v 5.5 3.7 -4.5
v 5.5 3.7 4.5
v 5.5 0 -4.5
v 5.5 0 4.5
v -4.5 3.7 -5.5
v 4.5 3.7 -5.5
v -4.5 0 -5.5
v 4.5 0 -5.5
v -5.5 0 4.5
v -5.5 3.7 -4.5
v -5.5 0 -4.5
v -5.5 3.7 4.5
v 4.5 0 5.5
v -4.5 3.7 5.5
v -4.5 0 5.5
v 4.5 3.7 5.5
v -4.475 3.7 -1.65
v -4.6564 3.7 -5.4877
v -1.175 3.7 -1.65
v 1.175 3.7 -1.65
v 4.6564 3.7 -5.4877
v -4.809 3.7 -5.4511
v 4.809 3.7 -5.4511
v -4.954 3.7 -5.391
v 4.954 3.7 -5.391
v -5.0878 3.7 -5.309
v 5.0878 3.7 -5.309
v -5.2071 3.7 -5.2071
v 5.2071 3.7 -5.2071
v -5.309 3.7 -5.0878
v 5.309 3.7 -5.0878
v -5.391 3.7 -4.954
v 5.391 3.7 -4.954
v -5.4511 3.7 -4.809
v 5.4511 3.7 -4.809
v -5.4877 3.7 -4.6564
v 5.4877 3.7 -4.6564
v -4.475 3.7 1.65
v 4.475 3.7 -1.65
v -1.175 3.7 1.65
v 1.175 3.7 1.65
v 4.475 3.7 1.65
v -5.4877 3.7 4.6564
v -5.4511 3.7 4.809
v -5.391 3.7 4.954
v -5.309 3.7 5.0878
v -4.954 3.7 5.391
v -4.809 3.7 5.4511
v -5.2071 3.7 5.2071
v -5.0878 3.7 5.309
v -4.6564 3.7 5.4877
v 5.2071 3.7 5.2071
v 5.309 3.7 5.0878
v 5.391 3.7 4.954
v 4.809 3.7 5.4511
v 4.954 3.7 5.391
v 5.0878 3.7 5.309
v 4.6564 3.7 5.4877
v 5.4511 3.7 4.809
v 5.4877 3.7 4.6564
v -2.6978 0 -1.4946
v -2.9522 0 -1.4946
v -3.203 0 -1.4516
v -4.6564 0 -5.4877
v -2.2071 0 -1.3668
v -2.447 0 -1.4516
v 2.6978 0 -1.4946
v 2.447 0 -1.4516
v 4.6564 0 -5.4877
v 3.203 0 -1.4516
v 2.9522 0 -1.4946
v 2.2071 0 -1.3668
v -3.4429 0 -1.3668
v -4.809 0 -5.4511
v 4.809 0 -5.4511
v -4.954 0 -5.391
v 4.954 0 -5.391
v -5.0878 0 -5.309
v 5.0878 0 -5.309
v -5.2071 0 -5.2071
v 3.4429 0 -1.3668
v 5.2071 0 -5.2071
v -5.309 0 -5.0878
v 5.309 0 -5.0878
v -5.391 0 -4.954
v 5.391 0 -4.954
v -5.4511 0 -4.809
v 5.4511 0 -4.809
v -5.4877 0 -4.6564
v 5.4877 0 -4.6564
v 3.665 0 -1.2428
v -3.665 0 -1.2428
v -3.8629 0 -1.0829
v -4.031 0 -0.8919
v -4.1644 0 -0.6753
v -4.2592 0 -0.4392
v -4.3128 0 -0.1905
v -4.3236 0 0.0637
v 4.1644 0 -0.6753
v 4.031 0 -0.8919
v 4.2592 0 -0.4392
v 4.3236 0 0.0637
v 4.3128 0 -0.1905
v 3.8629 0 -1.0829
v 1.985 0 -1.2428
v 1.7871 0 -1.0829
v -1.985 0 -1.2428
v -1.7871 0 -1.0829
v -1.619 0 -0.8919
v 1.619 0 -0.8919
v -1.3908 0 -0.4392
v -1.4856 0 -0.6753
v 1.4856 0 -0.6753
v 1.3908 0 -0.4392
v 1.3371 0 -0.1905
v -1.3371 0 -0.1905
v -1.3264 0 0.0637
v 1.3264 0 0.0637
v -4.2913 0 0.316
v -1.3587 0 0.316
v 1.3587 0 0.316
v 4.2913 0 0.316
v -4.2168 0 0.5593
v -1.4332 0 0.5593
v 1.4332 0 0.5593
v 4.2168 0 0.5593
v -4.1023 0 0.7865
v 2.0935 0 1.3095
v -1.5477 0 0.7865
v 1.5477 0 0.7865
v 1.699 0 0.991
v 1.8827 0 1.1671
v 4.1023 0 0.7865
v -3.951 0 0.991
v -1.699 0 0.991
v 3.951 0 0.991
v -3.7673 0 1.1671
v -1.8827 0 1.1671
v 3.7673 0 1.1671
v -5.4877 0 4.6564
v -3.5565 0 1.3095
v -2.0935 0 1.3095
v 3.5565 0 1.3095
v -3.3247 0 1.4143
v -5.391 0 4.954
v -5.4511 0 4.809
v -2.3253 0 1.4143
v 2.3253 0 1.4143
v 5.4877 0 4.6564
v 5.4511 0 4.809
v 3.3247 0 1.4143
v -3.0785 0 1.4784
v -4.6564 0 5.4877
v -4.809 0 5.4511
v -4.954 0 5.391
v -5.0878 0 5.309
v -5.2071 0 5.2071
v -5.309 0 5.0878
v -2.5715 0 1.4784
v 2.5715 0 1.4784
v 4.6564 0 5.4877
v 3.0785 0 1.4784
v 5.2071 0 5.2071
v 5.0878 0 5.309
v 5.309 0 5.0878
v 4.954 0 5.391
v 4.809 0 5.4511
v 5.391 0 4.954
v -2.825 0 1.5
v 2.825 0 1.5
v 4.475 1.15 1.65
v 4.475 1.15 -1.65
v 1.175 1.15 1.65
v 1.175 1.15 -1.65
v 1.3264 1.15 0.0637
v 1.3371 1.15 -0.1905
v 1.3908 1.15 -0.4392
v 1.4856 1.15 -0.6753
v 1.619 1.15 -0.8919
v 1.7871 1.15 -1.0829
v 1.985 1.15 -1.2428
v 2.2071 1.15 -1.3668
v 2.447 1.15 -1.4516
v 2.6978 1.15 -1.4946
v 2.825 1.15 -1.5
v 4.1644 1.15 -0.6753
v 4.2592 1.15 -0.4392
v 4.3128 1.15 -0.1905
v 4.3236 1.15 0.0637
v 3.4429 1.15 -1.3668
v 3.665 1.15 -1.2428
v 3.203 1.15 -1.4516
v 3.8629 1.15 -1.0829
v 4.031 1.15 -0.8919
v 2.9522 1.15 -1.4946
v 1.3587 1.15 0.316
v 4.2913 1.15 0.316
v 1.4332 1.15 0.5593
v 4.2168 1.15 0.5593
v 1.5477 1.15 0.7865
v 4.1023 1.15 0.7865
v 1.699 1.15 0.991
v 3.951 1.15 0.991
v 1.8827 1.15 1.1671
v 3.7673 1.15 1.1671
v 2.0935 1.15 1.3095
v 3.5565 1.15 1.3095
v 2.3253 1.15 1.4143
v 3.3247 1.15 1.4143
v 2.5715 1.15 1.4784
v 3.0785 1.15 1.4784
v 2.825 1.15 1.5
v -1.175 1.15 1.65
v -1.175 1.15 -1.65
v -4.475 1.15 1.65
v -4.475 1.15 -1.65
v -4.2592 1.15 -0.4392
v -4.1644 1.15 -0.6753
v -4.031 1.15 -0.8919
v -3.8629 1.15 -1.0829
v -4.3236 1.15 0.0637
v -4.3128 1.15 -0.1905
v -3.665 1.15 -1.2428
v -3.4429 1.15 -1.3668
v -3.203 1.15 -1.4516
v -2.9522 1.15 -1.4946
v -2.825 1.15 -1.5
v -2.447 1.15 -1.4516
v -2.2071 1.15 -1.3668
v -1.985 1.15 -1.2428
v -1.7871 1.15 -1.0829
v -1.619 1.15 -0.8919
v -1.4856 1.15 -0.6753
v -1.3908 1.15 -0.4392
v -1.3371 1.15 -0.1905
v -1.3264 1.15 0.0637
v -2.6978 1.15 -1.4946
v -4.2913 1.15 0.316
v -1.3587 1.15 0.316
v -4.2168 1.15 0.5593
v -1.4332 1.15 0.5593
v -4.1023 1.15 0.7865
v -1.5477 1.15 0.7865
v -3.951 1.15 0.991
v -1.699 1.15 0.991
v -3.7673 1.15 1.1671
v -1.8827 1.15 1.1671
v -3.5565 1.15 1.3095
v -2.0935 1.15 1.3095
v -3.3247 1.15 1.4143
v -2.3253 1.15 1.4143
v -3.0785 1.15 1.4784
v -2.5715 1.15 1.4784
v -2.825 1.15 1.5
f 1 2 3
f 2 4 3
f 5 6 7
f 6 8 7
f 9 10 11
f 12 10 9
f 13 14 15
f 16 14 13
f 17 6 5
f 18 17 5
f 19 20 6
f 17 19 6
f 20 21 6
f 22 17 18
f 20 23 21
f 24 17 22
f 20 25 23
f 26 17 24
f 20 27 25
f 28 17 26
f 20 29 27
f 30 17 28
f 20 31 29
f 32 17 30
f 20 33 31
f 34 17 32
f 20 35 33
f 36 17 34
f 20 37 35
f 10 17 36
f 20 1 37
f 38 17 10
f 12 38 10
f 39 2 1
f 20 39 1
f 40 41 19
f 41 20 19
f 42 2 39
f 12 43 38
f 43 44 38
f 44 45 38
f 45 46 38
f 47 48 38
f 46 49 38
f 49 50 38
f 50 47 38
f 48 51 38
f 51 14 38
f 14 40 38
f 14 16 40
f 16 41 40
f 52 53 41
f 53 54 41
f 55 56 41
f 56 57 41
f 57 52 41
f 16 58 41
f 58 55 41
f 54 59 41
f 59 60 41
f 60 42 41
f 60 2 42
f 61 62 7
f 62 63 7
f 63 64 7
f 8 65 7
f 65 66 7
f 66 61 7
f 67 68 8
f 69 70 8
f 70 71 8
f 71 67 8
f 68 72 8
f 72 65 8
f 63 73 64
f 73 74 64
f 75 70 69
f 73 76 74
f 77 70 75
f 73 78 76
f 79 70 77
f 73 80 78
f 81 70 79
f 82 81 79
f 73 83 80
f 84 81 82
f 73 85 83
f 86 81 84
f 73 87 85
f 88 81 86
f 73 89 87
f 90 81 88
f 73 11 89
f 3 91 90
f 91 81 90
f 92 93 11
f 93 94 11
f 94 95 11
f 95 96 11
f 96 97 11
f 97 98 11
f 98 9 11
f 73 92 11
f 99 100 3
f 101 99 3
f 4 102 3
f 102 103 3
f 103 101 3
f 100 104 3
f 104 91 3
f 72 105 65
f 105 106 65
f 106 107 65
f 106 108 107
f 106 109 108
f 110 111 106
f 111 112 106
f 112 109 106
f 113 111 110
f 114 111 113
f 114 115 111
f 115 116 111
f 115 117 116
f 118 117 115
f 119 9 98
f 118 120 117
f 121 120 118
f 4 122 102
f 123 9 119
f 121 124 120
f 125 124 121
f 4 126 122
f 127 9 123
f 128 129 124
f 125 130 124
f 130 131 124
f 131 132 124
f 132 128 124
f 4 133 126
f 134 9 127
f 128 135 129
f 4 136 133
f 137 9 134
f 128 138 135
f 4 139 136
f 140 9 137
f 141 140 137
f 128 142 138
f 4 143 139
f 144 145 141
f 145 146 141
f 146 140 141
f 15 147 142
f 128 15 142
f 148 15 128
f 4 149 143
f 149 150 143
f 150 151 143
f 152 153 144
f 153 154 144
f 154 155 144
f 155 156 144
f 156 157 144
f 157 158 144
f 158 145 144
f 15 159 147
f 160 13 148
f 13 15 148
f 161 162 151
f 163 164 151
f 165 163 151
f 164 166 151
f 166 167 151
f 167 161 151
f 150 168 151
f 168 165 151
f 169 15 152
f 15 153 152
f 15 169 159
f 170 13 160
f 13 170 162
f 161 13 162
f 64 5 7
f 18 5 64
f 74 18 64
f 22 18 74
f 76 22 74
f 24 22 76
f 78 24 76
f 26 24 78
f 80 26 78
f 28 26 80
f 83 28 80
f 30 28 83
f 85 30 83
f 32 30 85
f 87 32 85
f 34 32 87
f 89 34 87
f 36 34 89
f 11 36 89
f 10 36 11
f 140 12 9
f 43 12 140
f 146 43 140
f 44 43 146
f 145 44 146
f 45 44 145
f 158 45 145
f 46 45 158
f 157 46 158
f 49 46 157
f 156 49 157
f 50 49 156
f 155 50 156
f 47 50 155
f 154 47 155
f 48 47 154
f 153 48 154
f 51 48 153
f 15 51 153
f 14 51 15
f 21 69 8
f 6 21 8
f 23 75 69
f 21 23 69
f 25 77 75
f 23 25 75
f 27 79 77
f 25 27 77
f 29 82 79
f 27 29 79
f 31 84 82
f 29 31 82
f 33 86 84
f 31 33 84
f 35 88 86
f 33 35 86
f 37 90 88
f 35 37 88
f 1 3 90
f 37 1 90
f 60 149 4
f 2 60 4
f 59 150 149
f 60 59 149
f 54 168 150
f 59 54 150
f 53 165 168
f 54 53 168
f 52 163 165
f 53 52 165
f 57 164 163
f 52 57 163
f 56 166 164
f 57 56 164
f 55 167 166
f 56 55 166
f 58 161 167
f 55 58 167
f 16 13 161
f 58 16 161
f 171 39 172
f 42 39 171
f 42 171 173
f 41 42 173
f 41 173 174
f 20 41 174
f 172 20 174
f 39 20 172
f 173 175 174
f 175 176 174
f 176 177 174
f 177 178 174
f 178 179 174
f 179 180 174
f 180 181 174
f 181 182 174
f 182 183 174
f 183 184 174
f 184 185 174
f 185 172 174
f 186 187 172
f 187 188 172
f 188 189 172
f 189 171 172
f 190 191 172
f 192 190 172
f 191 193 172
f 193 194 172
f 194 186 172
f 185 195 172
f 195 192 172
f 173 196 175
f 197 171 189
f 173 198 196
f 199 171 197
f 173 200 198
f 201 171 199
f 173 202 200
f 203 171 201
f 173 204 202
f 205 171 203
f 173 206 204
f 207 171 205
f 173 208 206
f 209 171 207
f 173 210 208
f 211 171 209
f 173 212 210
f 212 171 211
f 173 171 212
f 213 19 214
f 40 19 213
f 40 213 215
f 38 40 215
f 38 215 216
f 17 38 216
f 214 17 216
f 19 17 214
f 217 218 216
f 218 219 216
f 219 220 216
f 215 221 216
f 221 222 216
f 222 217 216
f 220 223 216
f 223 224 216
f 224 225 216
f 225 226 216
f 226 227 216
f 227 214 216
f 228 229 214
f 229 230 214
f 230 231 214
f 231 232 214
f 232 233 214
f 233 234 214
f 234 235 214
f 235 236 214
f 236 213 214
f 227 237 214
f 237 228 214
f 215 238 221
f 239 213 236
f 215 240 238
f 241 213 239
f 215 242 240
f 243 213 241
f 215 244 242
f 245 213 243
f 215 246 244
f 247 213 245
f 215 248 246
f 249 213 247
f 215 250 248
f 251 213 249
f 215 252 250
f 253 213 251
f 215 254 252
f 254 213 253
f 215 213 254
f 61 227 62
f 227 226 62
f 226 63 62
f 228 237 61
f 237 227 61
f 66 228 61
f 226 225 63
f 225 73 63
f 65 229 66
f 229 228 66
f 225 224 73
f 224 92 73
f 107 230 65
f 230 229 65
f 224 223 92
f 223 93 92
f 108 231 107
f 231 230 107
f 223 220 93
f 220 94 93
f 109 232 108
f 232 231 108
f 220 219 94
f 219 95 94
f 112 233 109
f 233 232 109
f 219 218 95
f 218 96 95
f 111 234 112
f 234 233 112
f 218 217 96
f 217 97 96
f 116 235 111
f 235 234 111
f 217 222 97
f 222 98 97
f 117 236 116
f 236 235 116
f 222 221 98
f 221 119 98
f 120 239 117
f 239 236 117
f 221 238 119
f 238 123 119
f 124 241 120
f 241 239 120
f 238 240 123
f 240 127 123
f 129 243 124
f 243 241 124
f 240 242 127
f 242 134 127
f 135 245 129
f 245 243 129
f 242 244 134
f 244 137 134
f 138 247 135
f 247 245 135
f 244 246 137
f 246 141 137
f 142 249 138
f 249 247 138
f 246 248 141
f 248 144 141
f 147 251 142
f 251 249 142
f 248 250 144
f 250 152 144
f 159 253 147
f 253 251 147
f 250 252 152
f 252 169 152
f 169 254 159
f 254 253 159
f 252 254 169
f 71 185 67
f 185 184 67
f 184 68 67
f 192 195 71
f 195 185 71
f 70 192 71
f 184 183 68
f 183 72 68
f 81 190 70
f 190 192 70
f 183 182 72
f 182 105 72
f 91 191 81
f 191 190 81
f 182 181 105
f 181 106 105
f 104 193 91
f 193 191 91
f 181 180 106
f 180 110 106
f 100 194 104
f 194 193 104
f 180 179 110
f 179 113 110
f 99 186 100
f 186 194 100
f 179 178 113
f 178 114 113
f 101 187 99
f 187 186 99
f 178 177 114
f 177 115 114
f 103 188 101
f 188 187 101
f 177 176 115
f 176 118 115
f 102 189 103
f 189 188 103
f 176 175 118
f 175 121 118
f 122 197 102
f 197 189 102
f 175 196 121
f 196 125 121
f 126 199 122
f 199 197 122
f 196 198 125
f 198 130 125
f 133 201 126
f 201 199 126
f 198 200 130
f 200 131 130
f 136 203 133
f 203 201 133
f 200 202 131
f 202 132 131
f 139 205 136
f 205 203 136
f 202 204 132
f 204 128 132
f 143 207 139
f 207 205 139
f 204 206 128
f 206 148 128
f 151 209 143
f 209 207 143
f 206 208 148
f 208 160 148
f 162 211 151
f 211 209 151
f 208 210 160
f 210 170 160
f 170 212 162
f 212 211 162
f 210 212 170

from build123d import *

# Parameters (mm, degrees)
SKETCH1_W           = 11
SKETCH1_H           = 11
BOSS_EXTRUDE1_DEPTH = 3.7
FILLET1_R           = 1
SKETCH2_W           = 3.3
SKETCH2_H           = 3.3
CUT_EXTRUDE1_DEPTH  = 2.55
SKETCH3_R           = 1.5
CUT_EXTRUDE2_DEPTH  = 9.613361713


with BuildPart() as part:
    # Sketch1 → Boss-Extrude1 (new body)
    with BuildSketch(Plane(origin=(0, 0, 0), x_dir=(1, 0, 0), z_dir=(0, 1, 0))):
        Rectangle(SKETCH1_W, SKETCH1_H)
    extrude(amount=BOSS_EXTRUDE1_DEPTH)

    # Fillet1
    fillet1_edges = [part.edges().sort_by_distance(p)[0] for p in [
        (5.5, 1.85, 5.5),
        (-5.5, 1.85, 5.5),
        (-5.5, 1.85, -5.5),
        (5.5, 1.85, -5.5),
    ]]
    fillet(fillet1_edges, radius=FILLET1_R)

    # Sketch2 → Cut-Extrude1 (cut)
    with BuildSketch(Plane(origin=(0, 3.7, 0), x_dir=(1, 0, 0), z_dir=(0, 1, 0))):
        with Locations((-2.825, 0)):
            Rectangle(SKETCH2_W, SKETCH2_H)
        with Locations((2.825, 0)):
            Rectangle(SKETCH2_W, SKETCH2_H)
    extrude(amount=-CUT_EXTRUDE1_DEPTH, mode=Mode.SUBTRACT)

    # Sketch3 → Cut-Extrude2 (cut, through all)
    with BuildSketch(Plane(origin=(0, 3.7, 0), x_dir=(1, 0, 0), z_dir=(0, 1, 0))):
        with Locations(Location((-2.825, 0, 0), (0, 0, 270))):
            Circle(SKETCH3_R)
        with Locations(Location((2.825, 0, 0), (0, 0, 270))):
            Circle(SKETCH3_R)
    extrude(amount=-CUT_EXTRUDE2_DEPTH, mode=Mode.SUBTRACT)


solid = part.part
